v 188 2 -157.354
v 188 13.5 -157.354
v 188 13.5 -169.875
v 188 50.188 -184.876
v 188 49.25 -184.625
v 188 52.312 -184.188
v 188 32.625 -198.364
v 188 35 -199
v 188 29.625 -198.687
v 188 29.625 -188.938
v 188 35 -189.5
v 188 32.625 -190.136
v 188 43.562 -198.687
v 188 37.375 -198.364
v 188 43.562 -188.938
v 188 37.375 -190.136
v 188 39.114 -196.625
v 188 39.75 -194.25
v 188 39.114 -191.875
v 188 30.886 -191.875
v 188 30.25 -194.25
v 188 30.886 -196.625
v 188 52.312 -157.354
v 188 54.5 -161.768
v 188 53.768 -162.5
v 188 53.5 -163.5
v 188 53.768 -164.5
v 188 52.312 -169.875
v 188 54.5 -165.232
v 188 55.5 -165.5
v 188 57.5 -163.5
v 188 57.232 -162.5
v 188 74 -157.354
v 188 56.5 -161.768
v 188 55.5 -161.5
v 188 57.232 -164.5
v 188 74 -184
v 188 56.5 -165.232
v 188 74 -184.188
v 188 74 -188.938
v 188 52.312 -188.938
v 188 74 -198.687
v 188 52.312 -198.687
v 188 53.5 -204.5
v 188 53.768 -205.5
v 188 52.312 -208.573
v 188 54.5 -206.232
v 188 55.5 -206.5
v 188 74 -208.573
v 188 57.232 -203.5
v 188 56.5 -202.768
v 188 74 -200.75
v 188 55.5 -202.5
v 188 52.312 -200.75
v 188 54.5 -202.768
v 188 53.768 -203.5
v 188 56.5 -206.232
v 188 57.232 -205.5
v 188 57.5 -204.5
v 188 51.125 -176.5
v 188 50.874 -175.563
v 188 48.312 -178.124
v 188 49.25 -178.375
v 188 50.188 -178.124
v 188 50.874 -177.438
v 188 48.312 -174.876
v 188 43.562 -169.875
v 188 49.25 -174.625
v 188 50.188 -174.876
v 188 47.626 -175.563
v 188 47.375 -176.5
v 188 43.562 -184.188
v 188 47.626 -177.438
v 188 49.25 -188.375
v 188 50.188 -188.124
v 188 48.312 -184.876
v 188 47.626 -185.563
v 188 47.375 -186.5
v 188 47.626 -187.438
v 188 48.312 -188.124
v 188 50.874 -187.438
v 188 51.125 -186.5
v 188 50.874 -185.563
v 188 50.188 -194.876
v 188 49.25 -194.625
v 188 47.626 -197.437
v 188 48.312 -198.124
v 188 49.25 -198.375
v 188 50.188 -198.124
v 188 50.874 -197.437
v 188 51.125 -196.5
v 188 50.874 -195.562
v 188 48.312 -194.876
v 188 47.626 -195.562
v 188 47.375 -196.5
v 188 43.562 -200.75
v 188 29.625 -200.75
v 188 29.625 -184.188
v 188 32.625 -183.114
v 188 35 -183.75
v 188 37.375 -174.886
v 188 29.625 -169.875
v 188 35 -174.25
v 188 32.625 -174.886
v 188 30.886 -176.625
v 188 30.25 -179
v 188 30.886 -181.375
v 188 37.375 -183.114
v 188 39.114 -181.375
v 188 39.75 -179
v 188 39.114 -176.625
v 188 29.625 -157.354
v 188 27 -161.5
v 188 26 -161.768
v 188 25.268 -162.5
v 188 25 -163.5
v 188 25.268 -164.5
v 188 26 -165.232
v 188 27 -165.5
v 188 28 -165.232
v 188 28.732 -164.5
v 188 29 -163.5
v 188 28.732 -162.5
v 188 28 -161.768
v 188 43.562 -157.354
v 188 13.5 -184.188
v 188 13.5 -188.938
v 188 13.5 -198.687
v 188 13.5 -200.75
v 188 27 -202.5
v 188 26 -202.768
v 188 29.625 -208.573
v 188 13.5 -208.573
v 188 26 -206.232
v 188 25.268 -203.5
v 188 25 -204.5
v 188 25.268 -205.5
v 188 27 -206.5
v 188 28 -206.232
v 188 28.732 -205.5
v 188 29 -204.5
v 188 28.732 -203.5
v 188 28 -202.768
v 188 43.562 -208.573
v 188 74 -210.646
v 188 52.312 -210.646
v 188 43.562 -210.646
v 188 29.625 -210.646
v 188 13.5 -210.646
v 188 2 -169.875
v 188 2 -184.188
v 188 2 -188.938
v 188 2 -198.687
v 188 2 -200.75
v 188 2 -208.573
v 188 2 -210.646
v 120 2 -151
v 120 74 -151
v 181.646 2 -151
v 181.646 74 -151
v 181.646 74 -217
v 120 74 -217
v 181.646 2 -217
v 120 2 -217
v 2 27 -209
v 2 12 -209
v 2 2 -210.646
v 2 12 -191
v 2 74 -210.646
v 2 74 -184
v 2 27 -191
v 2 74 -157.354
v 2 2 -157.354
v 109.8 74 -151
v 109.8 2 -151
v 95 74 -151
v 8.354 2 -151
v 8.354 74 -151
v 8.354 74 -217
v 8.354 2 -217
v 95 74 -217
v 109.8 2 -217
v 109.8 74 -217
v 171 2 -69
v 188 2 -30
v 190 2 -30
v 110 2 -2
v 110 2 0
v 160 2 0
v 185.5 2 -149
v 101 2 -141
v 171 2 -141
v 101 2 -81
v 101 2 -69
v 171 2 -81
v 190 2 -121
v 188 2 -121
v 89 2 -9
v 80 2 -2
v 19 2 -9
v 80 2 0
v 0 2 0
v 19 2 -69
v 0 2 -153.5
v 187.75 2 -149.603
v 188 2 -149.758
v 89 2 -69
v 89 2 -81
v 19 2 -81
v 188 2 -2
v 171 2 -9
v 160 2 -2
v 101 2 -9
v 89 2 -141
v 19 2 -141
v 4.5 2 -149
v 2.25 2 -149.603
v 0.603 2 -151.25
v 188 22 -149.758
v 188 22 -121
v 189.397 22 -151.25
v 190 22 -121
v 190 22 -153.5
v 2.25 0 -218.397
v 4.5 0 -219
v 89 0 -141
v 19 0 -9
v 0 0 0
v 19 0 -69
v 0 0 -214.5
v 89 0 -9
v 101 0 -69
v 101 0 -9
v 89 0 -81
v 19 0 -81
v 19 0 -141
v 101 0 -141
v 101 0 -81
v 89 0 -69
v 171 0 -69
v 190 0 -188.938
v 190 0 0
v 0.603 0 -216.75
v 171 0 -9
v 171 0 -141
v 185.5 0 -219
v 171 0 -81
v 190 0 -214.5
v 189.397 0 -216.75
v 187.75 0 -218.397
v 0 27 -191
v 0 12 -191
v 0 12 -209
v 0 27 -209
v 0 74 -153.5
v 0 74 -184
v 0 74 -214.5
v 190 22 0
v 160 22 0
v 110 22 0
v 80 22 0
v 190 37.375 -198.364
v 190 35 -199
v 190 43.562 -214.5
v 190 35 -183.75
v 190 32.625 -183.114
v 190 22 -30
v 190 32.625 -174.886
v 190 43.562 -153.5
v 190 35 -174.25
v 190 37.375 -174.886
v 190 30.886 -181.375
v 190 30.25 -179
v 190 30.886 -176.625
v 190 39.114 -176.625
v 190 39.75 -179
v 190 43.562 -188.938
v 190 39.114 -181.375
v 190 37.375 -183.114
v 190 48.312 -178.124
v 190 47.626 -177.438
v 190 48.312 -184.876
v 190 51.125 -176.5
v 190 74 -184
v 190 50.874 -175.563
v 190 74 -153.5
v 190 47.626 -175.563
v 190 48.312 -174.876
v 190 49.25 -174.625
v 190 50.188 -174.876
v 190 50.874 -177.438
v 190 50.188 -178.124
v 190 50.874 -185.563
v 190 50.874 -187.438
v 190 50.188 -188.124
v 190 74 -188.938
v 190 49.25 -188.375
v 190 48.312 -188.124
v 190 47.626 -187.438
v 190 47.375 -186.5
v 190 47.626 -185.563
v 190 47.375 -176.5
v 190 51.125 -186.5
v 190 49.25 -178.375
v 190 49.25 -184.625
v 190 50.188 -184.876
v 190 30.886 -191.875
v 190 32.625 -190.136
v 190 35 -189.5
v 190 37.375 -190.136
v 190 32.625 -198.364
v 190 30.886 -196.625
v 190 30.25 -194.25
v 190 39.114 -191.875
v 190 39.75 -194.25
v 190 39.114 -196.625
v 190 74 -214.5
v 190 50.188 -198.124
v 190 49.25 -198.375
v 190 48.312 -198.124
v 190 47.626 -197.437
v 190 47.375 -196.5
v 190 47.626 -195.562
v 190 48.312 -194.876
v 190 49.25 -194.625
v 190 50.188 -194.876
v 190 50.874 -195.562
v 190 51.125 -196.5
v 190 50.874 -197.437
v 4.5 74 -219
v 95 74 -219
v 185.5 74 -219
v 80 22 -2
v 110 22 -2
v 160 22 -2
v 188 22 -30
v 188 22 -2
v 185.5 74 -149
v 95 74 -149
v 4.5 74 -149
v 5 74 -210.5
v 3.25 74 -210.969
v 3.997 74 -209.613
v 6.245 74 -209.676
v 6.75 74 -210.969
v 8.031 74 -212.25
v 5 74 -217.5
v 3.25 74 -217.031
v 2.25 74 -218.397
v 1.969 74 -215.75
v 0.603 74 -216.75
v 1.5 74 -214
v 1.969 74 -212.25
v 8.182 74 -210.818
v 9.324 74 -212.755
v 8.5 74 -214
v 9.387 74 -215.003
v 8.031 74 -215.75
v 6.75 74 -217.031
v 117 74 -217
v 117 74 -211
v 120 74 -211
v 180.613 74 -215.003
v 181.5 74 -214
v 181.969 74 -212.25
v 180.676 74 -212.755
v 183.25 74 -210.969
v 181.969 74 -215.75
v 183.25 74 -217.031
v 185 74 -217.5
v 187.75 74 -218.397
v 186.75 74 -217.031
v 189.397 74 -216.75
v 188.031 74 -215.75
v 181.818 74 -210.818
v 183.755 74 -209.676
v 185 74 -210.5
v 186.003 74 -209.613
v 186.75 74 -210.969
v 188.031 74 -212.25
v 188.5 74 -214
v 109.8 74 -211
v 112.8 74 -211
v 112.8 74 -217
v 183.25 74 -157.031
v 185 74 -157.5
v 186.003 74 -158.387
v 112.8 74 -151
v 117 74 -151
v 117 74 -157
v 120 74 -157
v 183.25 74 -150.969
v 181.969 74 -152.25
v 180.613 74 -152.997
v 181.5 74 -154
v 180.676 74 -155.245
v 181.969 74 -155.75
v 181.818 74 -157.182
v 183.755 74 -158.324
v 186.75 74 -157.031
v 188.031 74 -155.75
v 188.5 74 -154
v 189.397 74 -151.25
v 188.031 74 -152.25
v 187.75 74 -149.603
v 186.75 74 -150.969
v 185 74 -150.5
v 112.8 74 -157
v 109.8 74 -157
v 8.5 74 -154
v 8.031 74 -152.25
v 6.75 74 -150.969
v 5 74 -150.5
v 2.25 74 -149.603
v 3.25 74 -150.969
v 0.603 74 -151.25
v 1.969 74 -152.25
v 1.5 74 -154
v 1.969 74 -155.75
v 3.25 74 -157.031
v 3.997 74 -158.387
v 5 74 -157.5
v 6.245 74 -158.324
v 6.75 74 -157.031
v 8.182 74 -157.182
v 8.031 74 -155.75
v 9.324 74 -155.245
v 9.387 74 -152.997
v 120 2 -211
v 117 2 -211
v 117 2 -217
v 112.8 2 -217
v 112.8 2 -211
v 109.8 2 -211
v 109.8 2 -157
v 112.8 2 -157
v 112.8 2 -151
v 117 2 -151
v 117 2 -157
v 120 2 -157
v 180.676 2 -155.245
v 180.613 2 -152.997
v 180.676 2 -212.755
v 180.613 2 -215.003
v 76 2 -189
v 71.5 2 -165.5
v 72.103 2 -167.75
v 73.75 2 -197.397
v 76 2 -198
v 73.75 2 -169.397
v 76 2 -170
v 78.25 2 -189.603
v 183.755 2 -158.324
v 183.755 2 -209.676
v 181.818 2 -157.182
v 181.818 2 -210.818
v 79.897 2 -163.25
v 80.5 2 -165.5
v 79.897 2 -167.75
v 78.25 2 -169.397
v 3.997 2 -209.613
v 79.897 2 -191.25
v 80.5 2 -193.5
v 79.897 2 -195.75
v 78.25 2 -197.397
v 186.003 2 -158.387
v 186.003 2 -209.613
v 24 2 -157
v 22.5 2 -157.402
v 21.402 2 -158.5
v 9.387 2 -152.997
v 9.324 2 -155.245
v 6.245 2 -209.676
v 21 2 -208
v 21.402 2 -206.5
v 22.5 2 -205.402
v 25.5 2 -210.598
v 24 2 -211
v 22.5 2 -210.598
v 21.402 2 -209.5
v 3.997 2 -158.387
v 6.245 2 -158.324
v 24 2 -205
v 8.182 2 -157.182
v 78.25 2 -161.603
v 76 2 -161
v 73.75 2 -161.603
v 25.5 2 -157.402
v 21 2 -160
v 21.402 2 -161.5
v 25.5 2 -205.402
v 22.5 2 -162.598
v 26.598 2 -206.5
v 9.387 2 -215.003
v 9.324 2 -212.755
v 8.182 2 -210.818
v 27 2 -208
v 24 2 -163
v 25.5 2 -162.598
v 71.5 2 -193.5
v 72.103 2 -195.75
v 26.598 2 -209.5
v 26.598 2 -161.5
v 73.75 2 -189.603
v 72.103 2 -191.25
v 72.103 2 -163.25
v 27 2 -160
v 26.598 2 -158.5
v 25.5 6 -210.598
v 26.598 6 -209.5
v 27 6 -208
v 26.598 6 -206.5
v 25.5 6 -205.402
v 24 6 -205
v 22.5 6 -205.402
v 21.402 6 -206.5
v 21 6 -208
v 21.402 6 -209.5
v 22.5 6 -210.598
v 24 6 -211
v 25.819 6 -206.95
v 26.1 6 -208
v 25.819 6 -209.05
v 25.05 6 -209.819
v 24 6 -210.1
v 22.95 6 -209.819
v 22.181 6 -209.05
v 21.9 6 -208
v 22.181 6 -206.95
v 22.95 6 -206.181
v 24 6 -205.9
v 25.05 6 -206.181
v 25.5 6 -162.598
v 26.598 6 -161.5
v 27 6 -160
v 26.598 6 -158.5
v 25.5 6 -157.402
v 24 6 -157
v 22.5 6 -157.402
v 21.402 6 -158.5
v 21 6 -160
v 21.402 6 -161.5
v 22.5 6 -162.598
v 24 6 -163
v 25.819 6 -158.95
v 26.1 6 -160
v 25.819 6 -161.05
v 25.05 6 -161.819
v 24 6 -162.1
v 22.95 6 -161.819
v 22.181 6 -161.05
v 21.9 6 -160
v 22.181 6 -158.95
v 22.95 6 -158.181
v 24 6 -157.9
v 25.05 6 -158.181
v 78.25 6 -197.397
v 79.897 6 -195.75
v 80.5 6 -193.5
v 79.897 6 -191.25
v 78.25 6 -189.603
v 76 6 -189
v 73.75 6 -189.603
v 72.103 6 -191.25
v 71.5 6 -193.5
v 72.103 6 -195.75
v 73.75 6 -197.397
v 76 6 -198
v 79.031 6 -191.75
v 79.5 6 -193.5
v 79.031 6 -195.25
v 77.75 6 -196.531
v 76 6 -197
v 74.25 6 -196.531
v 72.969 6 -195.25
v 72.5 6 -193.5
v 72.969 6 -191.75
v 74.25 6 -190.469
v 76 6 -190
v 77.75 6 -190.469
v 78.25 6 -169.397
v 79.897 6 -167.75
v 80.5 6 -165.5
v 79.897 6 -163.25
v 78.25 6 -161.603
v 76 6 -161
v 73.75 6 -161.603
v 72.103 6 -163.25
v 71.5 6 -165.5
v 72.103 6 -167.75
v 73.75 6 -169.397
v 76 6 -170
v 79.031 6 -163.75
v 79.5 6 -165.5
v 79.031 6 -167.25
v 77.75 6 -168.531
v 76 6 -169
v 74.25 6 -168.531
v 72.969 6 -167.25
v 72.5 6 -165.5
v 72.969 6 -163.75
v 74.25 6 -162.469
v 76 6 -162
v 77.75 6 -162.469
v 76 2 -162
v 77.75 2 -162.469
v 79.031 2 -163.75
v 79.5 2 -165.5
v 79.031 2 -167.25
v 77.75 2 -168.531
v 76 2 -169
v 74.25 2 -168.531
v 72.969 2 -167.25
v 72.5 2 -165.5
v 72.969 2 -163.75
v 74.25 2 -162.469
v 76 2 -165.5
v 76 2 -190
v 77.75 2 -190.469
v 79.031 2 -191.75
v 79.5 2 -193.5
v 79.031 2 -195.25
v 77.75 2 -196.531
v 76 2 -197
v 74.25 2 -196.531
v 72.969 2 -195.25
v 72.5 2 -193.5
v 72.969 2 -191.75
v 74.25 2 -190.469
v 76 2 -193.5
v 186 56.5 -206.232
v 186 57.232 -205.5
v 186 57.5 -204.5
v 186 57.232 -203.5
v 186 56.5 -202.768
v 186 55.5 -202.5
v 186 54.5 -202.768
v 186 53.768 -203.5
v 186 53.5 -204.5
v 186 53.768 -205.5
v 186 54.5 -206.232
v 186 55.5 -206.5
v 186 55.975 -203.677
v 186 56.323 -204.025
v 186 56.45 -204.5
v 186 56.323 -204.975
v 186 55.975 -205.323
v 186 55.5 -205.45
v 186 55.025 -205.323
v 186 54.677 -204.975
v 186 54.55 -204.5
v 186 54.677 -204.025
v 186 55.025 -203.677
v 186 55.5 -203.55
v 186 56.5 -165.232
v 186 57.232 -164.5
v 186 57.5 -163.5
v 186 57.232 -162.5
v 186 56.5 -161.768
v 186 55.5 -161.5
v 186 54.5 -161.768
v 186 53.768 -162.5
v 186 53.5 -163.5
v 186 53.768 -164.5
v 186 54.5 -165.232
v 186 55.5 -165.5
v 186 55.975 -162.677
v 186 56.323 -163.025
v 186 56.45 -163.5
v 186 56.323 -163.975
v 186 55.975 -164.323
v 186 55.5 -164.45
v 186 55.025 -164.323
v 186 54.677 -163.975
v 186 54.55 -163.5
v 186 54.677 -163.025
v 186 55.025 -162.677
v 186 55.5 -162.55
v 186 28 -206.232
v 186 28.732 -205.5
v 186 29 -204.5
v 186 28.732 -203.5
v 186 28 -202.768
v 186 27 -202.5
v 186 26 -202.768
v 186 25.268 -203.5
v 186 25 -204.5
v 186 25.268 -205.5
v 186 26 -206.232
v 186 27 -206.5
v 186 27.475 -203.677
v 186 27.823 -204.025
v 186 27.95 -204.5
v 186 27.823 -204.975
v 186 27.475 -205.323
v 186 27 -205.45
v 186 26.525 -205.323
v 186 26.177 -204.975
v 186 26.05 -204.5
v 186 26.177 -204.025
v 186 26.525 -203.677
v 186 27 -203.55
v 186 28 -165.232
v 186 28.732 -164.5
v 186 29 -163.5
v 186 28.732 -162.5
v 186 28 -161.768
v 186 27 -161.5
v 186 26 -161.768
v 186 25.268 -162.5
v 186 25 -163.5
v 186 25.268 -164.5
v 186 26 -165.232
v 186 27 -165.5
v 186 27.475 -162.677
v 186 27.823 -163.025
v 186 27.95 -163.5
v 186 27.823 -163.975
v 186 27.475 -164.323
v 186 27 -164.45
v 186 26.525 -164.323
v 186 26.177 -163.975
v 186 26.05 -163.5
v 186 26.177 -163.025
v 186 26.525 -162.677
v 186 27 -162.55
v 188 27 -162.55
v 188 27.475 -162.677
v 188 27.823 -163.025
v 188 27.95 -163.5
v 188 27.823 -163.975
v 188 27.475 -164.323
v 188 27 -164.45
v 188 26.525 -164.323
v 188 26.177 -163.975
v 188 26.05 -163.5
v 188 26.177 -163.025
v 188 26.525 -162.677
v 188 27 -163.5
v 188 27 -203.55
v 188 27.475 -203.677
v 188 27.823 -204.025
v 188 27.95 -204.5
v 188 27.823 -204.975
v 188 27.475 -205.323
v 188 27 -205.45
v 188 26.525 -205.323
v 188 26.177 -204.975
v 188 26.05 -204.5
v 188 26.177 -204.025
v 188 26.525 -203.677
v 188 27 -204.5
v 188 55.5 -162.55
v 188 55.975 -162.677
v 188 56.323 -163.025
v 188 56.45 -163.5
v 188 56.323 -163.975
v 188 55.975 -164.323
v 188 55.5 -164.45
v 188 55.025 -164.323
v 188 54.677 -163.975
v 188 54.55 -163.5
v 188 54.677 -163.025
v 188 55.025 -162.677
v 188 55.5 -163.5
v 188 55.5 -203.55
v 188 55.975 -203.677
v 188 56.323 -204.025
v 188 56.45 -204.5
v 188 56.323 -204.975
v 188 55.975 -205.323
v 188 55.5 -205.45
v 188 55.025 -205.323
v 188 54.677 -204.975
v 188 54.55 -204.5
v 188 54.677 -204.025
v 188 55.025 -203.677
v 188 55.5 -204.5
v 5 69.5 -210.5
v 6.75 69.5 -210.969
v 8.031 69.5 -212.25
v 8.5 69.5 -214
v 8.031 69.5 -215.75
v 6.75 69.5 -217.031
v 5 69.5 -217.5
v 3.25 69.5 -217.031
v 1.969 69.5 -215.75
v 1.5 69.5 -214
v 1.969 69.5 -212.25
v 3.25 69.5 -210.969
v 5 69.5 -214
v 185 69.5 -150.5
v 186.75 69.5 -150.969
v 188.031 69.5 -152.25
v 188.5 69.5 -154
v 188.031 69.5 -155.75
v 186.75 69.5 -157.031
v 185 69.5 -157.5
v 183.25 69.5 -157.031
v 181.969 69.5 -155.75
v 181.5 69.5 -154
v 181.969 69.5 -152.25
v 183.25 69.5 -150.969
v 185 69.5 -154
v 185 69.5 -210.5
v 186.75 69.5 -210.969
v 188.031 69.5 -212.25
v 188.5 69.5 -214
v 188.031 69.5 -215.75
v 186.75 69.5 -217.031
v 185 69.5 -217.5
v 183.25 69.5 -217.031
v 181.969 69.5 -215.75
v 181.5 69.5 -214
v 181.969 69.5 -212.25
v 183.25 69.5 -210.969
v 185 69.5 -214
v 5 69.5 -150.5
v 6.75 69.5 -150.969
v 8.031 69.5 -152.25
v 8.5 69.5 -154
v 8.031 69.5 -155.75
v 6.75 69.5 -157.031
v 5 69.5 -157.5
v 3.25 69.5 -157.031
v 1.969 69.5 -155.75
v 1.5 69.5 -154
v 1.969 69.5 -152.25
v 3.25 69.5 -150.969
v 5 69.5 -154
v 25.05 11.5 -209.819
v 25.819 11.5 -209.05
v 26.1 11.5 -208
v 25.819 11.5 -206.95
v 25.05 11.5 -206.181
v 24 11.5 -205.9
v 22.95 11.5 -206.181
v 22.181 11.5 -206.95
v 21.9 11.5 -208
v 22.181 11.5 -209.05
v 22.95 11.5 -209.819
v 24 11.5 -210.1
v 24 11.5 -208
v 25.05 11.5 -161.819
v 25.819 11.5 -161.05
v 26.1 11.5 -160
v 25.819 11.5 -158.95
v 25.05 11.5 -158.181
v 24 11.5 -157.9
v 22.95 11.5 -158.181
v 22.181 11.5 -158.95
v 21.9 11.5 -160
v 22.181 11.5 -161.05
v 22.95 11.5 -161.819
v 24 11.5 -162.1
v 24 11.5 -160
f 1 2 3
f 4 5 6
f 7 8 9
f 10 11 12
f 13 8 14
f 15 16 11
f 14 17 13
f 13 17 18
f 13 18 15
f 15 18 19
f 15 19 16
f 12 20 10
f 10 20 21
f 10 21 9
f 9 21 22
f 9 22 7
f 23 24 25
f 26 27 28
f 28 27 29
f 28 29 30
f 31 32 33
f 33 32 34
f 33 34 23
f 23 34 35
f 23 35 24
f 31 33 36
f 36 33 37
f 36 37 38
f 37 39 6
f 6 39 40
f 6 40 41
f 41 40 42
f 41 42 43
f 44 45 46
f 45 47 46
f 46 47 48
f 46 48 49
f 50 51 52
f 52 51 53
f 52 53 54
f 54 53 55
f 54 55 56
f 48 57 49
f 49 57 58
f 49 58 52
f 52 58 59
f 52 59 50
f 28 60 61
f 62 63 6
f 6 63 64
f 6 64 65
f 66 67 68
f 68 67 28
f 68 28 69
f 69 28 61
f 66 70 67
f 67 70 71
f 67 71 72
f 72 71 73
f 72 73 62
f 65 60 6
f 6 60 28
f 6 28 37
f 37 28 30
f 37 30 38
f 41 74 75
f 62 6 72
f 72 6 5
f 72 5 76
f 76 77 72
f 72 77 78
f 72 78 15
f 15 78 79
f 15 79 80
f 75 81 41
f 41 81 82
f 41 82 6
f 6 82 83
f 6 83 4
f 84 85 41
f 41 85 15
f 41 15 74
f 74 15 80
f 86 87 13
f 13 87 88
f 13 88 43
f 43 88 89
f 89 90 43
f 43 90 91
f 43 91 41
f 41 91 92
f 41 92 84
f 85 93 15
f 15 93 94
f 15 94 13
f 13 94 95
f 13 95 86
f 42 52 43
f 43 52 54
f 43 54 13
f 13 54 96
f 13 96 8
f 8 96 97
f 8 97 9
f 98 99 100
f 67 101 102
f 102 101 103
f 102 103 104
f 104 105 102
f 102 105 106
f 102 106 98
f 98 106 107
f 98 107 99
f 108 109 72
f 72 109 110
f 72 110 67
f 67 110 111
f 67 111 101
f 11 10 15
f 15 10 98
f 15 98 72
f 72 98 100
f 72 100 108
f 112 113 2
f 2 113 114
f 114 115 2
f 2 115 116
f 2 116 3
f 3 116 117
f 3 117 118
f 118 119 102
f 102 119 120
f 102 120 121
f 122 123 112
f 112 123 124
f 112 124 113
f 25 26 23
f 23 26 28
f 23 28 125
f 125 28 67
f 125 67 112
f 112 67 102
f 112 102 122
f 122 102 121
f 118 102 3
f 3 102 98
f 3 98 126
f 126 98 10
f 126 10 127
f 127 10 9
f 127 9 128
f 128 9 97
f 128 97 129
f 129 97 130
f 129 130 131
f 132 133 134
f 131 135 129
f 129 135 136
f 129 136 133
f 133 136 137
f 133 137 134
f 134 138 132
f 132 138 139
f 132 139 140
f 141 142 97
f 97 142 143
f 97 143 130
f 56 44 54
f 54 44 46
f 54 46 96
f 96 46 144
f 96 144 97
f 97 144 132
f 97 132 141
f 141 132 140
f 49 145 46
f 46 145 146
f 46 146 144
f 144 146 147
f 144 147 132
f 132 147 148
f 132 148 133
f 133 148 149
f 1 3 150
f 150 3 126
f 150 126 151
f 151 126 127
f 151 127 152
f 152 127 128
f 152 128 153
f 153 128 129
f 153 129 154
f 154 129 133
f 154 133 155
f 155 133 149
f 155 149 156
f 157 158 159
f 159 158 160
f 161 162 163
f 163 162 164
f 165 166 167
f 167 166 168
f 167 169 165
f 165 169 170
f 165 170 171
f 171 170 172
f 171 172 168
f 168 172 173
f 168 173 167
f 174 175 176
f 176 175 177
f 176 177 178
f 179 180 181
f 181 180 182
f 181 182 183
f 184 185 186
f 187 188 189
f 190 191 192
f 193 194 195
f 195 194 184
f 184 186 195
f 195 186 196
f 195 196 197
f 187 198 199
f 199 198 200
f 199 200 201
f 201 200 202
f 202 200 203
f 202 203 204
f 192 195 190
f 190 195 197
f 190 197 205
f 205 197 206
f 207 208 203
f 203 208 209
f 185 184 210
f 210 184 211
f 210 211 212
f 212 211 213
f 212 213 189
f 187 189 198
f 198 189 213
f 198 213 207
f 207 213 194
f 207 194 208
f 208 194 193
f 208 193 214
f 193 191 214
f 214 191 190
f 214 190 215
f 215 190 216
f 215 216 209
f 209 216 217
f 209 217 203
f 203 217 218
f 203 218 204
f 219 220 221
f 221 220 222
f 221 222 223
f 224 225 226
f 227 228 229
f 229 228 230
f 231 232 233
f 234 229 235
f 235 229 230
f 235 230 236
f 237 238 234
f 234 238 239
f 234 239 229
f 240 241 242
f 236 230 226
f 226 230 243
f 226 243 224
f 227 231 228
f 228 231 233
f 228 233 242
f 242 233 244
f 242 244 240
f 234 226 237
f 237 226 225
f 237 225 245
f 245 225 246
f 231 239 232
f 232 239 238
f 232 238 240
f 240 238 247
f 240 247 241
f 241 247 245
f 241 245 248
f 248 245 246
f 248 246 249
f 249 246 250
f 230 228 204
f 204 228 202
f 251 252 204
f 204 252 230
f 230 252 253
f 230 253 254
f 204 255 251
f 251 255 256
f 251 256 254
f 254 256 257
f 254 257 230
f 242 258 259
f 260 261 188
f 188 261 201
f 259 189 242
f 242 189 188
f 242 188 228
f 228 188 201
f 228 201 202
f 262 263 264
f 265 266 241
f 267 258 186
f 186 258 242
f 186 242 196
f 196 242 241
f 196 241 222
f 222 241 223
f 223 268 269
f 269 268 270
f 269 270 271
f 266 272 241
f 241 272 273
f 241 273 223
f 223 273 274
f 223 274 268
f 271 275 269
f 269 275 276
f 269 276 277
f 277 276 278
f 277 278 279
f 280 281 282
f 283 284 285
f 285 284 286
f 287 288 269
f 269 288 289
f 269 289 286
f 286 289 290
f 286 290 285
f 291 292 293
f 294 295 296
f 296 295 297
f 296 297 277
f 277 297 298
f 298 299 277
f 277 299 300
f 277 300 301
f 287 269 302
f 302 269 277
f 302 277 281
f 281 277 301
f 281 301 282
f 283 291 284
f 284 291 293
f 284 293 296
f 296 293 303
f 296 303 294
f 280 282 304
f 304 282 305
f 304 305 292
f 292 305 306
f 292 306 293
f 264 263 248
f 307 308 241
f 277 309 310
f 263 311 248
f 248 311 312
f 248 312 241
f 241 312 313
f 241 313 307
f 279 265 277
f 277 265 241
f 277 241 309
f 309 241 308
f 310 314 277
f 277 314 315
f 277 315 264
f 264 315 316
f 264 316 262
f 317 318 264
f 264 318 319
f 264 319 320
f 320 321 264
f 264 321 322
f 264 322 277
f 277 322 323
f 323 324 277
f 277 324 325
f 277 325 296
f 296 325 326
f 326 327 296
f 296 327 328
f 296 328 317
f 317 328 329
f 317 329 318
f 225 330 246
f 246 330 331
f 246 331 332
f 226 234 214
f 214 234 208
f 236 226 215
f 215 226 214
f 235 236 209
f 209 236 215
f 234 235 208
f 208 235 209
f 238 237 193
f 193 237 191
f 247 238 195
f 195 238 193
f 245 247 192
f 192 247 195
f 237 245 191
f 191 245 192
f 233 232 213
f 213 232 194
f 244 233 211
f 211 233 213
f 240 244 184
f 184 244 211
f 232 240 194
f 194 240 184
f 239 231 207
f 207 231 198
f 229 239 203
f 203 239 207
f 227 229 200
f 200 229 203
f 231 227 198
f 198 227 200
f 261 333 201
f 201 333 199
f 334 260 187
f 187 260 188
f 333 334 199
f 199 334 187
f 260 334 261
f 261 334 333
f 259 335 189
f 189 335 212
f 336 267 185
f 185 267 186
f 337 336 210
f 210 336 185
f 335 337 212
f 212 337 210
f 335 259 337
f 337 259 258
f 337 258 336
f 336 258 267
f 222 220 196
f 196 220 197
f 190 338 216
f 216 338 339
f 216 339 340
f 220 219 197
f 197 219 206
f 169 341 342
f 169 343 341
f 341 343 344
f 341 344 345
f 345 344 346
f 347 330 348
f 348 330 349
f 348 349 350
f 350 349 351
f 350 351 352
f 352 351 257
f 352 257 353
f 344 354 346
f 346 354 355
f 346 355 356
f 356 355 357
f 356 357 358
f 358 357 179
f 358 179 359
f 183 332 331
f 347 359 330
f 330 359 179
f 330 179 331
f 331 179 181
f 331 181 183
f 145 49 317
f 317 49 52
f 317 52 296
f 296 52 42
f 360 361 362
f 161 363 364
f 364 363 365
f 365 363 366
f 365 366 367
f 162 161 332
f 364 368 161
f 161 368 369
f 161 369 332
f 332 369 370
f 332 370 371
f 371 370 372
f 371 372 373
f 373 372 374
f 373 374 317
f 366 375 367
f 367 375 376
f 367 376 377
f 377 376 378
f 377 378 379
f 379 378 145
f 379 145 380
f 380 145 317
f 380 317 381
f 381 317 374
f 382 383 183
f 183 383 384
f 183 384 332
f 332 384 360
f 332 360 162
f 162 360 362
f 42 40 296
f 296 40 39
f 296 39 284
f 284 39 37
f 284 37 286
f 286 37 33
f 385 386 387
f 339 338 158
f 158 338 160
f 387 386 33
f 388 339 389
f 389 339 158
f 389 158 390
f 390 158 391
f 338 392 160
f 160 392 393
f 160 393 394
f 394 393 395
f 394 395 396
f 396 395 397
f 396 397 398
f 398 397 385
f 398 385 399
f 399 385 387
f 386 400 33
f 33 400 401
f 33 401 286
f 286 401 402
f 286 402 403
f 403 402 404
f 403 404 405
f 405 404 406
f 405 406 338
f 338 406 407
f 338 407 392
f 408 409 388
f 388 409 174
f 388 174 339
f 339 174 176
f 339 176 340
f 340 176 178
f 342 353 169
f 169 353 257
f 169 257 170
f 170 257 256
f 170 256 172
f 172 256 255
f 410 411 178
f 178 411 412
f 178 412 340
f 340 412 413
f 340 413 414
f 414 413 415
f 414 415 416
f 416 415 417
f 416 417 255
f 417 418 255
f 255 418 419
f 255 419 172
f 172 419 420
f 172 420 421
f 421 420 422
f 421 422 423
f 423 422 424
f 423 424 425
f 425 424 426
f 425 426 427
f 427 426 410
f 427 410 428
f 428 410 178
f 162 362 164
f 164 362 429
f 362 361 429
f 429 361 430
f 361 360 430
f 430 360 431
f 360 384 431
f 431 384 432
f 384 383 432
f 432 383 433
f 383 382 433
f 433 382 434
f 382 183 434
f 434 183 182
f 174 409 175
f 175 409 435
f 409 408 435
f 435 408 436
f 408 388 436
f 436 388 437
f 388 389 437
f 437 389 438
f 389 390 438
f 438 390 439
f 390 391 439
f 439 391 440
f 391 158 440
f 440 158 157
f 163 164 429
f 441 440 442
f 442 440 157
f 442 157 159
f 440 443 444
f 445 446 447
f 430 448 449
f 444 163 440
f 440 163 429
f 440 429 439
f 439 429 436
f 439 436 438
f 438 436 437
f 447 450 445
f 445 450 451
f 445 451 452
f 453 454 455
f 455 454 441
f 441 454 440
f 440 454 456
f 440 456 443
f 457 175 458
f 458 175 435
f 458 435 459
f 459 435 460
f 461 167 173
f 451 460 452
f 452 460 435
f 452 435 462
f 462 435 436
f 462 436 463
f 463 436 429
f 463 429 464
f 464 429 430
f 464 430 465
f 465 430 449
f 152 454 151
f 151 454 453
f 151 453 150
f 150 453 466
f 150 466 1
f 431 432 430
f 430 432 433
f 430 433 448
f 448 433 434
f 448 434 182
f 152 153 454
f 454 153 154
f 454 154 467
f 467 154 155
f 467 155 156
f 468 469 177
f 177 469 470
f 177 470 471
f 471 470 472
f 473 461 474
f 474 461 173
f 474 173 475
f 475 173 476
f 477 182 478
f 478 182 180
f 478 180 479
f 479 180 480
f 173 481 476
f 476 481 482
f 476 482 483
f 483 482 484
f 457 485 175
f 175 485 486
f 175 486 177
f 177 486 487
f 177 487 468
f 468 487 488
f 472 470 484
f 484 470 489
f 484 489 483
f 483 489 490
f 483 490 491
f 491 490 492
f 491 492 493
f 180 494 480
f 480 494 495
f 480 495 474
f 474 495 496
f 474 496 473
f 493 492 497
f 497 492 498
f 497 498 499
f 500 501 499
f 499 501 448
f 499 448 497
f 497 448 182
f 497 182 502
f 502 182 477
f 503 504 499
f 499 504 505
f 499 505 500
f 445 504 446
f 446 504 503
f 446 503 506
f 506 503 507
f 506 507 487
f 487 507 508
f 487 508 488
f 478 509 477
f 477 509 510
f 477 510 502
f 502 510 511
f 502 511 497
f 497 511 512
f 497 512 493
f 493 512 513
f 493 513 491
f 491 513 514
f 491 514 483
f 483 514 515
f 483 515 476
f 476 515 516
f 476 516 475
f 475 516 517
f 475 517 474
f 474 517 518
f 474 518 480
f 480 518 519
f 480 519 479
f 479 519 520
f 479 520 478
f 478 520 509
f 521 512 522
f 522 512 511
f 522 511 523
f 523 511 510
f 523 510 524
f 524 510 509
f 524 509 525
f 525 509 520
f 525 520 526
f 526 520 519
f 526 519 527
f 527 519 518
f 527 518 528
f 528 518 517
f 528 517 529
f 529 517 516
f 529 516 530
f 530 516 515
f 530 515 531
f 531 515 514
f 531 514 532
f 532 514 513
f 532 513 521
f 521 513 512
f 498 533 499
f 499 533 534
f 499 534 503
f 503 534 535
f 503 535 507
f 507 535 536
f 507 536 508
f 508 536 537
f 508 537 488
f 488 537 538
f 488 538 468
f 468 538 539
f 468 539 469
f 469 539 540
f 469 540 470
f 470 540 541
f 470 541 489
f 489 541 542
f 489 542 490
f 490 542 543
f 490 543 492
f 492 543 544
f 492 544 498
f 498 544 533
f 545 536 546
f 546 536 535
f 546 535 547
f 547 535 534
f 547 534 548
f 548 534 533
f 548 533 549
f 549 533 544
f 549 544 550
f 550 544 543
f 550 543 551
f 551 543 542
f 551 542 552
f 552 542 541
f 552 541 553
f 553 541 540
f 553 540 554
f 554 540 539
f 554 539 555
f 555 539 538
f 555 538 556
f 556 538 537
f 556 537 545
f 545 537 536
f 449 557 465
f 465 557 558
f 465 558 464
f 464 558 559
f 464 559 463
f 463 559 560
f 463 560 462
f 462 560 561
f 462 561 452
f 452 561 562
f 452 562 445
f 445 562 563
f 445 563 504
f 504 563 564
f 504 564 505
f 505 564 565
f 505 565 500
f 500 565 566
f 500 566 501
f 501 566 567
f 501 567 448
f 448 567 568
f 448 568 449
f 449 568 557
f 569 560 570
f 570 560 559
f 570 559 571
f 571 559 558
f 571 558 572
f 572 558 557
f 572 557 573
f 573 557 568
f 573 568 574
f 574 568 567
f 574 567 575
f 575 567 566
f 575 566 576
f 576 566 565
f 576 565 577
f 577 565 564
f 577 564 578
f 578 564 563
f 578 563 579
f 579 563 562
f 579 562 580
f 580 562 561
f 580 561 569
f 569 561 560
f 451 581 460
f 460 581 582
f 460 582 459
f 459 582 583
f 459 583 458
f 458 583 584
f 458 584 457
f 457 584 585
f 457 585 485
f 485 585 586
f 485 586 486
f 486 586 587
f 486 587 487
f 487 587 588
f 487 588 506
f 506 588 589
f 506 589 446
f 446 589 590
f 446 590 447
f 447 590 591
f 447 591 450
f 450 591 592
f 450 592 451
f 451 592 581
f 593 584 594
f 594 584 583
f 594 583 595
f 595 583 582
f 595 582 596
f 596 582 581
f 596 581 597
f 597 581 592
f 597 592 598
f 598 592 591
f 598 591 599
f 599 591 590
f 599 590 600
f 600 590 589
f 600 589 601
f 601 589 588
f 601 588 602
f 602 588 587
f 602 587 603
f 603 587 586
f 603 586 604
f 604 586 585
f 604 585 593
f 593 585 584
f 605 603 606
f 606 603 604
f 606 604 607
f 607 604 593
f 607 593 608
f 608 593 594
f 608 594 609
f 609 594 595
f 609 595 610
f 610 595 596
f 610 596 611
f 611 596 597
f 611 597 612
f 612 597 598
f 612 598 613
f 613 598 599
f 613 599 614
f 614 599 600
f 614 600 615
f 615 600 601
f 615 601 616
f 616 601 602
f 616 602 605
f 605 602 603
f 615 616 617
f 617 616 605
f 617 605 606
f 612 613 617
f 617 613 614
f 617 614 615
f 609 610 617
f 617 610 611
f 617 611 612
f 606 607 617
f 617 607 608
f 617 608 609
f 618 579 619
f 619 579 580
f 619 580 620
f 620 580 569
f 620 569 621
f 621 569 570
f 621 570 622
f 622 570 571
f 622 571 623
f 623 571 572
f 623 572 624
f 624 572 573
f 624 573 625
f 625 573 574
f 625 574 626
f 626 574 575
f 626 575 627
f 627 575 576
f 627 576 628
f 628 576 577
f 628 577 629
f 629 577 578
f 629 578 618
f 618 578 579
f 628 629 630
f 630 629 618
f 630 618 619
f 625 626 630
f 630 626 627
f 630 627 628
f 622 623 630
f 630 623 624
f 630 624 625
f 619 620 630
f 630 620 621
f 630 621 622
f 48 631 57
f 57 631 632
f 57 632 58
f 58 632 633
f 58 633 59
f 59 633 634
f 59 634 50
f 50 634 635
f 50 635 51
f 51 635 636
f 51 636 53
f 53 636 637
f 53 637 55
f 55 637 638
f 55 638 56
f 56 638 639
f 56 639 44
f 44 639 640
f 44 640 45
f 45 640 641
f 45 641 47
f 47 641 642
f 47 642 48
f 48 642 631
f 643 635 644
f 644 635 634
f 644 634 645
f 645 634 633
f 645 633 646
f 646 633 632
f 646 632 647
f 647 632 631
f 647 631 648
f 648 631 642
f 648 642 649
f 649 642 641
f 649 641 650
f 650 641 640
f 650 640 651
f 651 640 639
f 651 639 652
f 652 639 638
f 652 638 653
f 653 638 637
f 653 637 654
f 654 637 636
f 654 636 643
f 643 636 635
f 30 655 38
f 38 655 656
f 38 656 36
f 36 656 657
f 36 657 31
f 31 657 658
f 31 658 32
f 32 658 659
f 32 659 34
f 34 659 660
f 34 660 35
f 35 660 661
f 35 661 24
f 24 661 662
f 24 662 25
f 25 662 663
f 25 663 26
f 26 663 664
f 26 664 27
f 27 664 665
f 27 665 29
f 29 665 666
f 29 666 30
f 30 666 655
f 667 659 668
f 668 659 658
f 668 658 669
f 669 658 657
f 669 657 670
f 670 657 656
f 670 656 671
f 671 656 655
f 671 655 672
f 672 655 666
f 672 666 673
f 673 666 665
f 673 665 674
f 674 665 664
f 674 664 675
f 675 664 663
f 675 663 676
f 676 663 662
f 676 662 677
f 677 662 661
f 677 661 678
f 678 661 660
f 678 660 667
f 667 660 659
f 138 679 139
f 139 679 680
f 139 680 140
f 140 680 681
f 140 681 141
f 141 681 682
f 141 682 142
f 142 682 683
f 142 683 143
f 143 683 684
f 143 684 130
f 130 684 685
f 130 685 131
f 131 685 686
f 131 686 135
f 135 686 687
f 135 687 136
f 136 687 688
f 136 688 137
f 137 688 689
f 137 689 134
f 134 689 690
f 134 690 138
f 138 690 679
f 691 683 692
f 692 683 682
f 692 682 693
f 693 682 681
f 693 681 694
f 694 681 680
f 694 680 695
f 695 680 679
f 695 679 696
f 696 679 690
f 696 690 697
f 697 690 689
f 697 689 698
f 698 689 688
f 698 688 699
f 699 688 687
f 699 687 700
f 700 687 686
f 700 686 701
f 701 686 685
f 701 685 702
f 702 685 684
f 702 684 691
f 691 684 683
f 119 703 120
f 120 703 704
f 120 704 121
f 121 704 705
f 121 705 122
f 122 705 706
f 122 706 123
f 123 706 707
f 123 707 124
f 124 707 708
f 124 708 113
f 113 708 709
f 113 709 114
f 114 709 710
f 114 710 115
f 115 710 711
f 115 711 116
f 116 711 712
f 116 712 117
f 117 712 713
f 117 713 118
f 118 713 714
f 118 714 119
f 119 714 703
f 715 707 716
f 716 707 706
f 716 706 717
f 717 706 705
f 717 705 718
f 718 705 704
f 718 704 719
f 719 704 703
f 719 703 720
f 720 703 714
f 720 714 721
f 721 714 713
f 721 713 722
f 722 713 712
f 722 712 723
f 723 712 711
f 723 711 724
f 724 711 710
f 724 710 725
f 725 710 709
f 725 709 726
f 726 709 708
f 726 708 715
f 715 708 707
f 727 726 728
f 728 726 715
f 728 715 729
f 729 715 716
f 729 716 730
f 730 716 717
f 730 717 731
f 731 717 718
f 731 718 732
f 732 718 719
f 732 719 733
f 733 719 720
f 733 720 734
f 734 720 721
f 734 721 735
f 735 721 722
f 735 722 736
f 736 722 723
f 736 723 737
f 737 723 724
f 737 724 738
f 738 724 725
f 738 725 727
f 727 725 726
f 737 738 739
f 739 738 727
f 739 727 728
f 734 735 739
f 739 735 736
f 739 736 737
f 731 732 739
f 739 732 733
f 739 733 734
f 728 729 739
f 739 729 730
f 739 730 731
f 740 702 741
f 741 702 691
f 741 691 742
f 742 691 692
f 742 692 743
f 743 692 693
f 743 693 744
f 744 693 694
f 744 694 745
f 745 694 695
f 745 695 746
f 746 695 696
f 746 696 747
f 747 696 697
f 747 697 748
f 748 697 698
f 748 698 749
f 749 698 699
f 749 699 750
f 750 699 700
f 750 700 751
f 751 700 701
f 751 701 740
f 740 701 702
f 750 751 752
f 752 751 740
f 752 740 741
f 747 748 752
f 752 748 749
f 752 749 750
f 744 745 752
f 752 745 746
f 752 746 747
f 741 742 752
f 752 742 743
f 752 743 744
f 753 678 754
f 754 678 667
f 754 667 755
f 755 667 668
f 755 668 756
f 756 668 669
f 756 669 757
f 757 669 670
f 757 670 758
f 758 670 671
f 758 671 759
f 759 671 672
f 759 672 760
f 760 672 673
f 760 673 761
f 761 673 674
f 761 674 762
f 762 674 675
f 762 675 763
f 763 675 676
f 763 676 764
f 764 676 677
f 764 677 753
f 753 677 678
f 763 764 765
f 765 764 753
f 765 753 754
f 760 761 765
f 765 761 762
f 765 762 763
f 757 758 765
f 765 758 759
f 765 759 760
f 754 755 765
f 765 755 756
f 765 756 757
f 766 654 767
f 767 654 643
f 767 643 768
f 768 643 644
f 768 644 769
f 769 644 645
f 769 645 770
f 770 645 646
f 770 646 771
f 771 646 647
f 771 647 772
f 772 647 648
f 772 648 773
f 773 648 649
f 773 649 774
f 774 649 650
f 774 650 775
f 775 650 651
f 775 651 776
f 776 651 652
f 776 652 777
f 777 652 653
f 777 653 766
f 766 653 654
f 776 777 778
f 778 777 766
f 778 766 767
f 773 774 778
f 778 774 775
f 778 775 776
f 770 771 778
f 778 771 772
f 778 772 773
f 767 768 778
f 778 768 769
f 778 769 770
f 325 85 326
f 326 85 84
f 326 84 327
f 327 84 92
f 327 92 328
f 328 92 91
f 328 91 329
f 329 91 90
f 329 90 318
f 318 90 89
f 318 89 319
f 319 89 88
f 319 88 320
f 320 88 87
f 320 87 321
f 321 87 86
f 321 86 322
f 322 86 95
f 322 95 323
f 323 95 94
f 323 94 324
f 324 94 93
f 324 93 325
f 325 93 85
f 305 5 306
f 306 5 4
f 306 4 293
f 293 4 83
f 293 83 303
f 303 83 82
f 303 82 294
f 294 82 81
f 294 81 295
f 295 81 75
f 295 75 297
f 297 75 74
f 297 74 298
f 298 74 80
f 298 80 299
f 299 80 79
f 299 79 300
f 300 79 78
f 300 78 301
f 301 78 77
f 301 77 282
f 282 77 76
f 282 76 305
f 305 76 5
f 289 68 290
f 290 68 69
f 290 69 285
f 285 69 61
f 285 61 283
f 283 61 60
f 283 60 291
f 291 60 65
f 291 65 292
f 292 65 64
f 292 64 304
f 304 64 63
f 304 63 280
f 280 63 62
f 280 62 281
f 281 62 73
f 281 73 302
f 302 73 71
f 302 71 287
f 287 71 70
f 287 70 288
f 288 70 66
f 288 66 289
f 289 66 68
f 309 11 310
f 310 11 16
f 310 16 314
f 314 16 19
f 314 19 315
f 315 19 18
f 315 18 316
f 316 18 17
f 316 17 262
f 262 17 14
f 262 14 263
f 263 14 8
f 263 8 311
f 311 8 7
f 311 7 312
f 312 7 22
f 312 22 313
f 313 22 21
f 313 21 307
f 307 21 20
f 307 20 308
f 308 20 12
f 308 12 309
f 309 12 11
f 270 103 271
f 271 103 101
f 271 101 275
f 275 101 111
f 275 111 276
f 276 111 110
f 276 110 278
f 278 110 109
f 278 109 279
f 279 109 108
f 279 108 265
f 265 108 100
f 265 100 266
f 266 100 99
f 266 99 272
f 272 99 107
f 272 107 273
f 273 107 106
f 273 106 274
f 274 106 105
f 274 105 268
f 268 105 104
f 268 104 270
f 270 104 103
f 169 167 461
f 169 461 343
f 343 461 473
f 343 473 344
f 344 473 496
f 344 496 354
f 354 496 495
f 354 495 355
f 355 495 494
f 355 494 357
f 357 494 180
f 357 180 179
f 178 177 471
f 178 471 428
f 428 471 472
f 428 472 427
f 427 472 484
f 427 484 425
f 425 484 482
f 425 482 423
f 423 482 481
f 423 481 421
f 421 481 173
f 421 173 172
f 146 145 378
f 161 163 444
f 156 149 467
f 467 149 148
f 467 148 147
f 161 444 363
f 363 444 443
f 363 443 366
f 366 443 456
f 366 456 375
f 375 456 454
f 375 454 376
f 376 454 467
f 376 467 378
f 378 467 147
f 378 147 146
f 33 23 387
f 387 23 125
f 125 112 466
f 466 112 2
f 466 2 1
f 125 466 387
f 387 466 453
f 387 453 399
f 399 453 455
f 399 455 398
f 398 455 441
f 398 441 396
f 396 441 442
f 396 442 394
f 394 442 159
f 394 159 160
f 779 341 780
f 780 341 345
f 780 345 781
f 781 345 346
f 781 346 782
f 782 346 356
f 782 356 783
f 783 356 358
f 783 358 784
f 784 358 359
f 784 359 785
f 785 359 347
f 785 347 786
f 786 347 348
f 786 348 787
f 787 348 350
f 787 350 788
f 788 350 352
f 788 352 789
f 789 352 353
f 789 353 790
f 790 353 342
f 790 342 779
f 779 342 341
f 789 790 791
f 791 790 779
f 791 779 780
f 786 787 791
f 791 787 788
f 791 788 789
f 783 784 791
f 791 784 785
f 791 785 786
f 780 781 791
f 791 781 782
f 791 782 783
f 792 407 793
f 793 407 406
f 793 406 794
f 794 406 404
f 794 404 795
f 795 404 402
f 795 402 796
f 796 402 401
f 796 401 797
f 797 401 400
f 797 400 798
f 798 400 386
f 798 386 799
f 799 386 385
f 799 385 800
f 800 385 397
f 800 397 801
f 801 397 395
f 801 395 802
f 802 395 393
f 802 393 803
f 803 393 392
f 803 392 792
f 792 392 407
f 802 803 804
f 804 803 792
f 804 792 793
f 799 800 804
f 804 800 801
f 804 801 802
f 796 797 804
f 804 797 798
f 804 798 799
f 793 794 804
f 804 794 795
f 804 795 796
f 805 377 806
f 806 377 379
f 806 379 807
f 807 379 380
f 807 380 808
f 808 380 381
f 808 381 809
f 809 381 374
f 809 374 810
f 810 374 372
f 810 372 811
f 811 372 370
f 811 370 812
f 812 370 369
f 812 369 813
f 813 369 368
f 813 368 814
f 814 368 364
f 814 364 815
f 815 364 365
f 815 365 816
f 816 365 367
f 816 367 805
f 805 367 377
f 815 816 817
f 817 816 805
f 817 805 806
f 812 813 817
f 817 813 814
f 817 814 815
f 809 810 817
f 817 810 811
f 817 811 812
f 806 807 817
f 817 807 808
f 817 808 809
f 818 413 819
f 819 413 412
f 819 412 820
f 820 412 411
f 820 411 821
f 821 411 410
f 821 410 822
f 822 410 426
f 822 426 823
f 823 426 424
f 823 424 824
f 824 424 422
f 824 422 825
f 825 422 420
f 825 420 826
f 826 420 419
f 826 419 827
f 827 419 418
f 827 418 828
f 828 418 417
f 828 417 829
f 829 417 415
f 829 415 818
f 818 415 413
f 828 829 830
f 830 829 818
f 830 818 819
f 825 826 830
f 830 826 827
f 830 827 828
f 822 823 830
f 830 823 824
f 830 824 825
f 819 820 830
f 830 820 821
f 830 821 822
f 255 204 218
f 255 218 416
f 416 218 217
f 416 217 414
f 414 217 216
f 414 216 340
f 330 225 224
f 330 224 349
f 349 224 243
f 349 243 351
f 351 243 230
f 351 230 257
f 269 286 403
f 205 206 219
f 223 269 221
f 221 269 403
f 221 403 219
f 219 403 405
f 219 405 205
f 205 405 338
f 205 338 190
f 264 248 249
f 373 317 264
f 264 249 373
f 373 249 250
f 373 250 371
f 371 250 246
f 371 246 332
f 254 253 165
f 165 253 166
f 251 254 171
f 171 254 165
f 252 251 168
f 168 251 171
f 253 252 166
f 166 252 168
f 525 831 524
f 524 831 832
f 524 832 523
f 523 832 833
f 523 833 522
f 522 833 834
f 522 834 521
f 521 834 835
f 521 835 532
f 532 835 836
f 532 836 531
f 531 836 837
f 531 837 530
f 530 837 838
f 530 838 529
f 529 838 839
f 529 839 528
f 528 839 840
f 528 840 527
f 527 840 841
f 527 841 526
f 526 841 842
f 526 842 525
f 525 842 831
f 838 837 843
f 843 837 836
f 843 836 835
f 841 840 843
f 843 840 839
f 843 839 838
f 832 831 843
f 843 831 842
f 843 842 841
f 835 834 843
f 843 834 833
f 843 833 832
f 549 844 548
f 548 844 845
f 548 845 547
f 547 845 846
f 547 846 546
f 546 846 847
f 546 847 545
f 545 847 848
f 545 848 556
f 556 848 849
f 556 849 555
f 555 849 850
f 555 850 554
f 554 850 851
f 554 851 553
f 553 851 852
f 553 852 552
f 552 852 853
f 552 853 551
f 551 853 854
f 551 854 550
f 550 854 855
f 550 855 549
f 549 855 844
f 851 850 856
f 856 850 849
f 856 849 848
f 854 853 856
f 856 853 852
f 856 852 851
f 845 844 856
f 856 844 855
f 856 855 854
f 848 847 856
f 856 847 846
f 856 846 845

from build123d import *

# Parameters (mm, degrees)
SKETCH1_W           = 190
SKETCH1_H           = 219
BOSS_EXTRUDE1_DEPTH = 2
SKETCH4_W           = 70
SKETCH4_H           = 60
CUT_EXTRUDE1_DEPTH  = 4
SKETCH2_W           = 30
SKETCH2_H           = 2
BOSS_EXTRUDE2_DEPTH = 20
SKETCH3_W           = 190
SKETCH3_H           = 70
BOSS_EXTRUDE3_DEPTH = 72
SKETCH7_R           = 3
SKETCH7_R_2         = 4.5
BOSS_EXTRUDE4_DEPTH = 4
SKETCH8_R           = 3.5
CUT_EXTRUDE3_DEPTH  = 4
SKETCH9_R           = 2
BOSS_EXTRUDE5_DEPTH = 2
SKETCH10_R          = 0.95
CUT_EXTRUDE4_DEPTH  = 2
SKETCH11_R          = 1.875
SKETCH11_R_2        = 4.75
CUT_EXTRUDE5_DEPTH  = 4
SKETCH12_R          = 4.5
BOSS_EXTRUDE6_DEPTH = 72
SKETCH13_R          = 3.5
CUT_EXTRUDE6_DEPTH  = 4.5
FILLET1_START       = 2
FILLET1_DEPTH       = 73
FILLET1_START_2     = 22
FILLET1_2_DEPTH     = 53
FILLET1_START_3     = -1
FILLET1_3_DEPTH     = 23
SKETCH14_W          = 18
SKETCH14_H          = 15
CUT_EXTRUDE7_DEPTH  = 5
SKETCH15_R          = 2.1
BOSS_EXTRUDE7_DEPTH = 5.5


with BuildPart() as part:
    # Sketch1 → Boss-Extrude1 (new body)
    with BuildSketch(Plane(origin=(0, 0, 0), x_dir=(1, 0, 0), z_dir=(0, 1, 0))):
        with Locations((95, 109.5)):
            Rectangle(SKETCH1_W, SKETCH1_H)
    extrude(amount=BOSS_EXTRUDE1_DEPTH)

    # Sketch4 → Cut-Extrude1 (cut)
    with BuildSketch(Plane(origin=(0, 0, 0), x_dir=(1, 0, 0), z_dir=(0, 1, 0))):
        with Locations((54, 111)):
            Rectangle(SKETCH4_W, SKETCH4_H)
        with Locations((136, 111)):
            Rectangle(SKETCH4_W, SKETCH4_H)
        with Locations((136, 39)):
            Rectangle(SKETCH4_W, SKETCH4_H)
        with Locations((54, 39)):
            Rectangle(SKETCH4_W, SKETCH4_H)
    extrude(amount=CUT_EXTRUDE1_DEPTH, mode=Mode.SUBTRACT)

    # Sketch2 → Boss-Extrude2 (add)
    with BuildSketch(Plane(origin=(0, 2, 0), x_dir=(1, 0, 0), z_dir=(0, 1, 0))):
        with Locations((95, 1)):
            Rectangle(SKETCH2_W, SKETCH2_H)
        Polygon((160, 0), (190, 0), (190, 30), (188, 30), (188, 2), (160, 2), align=None)
        Polygon((190, 121), (190, 151), (156, 151), (156, 149), (188, 149), (188, 121), align=None)
    extrude(amount=BOSS_EXTRUDE2_DEPTH)

    # Sketch3 → Boss-Extrude3 (add)
    with BuildSketch(Plane(origin=(0, 2, 0), x_dir=(1, 0, 0), z_dir=(0, 1, 0))):
        with Locations((95, 184)):
            Rectangle(SKETCH3_W, SKETCH3_H)
        Polygon((188, 217), (120, 217), (120, 211), (117, 211), (117, 217), (112.8, 217), (112.8, 211), (109.8, 211), (109.8, 217), (2, 217), (2, 151), (109.8, 151), (109.8, 157), (112.8, 157), (112.8, 151), (117, 151), (117, 157), (120, 157), (120, 151), (188, 151), align=None, mode=Mode.SUBTRACT)
    extrude(amount=BOSS_EXTRUDE3_DEPTH)

    # Sketch7 → Boss-Extrude4 (add)
    with BuildSketch(Plane(origin=(0, 2, 0), x_dir=(1, 0, 0), z_dir=(0, 1, 0))):
        with Locations(Location((24, 208, 0), (0, 0, 90))):
            Circle(SKETCH7_R)
        with Locations(Location((24, 160, 0), (0, 0, 90))):
            Circle(SKETCH7_R)
        with Locations(Location((76, 193.5, 0), (0, 0, 90))):
            Circle(SKETCH7_R_2)
        with Locations(Location((76, 165.5, 0), (0, 0, 90))):
            Circle(SKETCH7_R_2)
    extrude(amount=BOSS_EXTRUDE4_DEPTH)

    # Sketch8 → Cut-Extrude3 (cut)
    with BuildSketch(Plane(origin=(0, 6, 0), x_dir=(1, 0, 0), z_dir=(0, 1, 0))):
        with Locations(Location((76, 193.5, 0), (0, 0, 270))):
            Circle(SKETCH8_R)
        with Locations(Location((76, 165.5, 0), (0, 0, 270))):
            Circle(SKETCH8_R)
    extrude(amount=-CUT_EXTRUDE3_DEPTH, mode=Mode.SUBTRACT)

    # Sketch9 → Boss-Extrude5 (add)
    with BuildSketch(Plane.ZY.offset(-188)):
        with Locations((-204.5, 55.5)):
            Circle(SKETCH9_R)
        with Locations((-163.5, 55.5)):
            Circle(SKETCH9_R)
        with Locations((-204.5, 27)):
            Circle(SKETCH9_R)
        with Locations((-163.5, 27)):
            Circle(SKETCH9_R)
    extrude(amount=BOSS_EXTRUDE5_DEPTH)

    # Sketch10 → Cut-Extrude4 (cut)
    with BuildSketch(Plane.ZY.offset(-186)):
        with Locations((-204.5, 55.5)):
            Circle(SKETCH10_R)
        with Locations((-163.5, 55.5)):
            Circle(SKETCH10_R)
        with Locations((-163.5, 27)):
            Circle(SKETCH10_R)
        with Locations((-204.5, 27)):
            Circle(SKETCH10_R)
    extrude(amount=-CUT_EXTRUDE4_DEPTH, mode=Mode.SUBTRACT)

    # Sketch11 → Cut-Extrude5 (cut)
    with BuildSketch(Plane.ZY.offset(-188)):
        with Locations((-196.5, 49.25)):
            Circle(SKETCH11_R)
        with Locations((-186.5, 49.25)):
            Circle(SKETCH11_R)
        with Locations((-176.5, 49.25)):
            Circle(SKETCH11_R)
        with Locations((-194.25, 35)):
            Circle(SKETCH11_R_2)
        with Locations((-179, 35)):
            Circle(SKETCH11_R_2)
    extrude(amount=-CUT_EXTRUDE5_DEPTH, mode=Mode.SUBTRACT)

    # Sketch12 → Boss-Extrude6 (add)
    with BuildSketch(Plane(origin=(0, 2, 0), x_dir=(1, 0, 0), z_dir=(0, 1, 0))):
        with Locations((5, 214)):
            Circle(SKETCH12_R)
        with Locations((5, 154)):
            Circle(SKETCH12_R)
        with Locations((185, 214)):
            Circle(SKETCH12_R)
        with Locations((185, 154)):
            Circle(SKETCH12_R)
    extrude(amount=BOSS_EXTRUDE6_DEPTH)

    # Sketch13 → Cut-Extrude6 (cut)
    with BuildSketch(Plane(origin=(0, 74, 0), x_dir=(1, 0, 0), z_dir=(0, 1, 0))):
        with Locations(Location((5, 214, 0), (0, 0, 270))):
            Circle(SKETCH13_R)
        with Locations(Location((5, 154, 0), (0, 0, 270))):
            Circle(SKETCH13_R)
        with Locations(Location((185, 214, 0), (0, 0, 270))):
            Circle(SKETCH13_R)
        with Locations(Location((185, 154, 0), (0, 0, 270))):
            Circle(SKETCH13_R)
    extrude(amount=-CUT_EXTRUDE6_DEPTH, mode=Mode.SUBTRACT)

    # Fillet1: read off the stored shape, not the designer's step
    # Fillet1 outline → Fillet1 (cut)
    with BuildSketch(Plane(origin=(0, 0, 0), x_dir=(1, 0, 0), z_dir=(0, 1, 0)).offset(FILLET1_START)):
        with BuildLine():
            Line((0, 149), (4.5, 149))
            ThreePointArc((4.5, 149), (1.318019485, 150.318019485), (0, 153.5))
            Line((0, 153.5), (0, 149))
        make_face()
        with BuildLine():
            ThreePointArc((188, 149.758342614), (186.80624304, 149.19375696), (185.5, 149))
            Line((185.5, 149), (188, 149))
            Line((188, 149), (188, 149.758342614))
        make_face()
        with BuildLine():
            Line((0, 219), (0, 214.5))
            ThreePointArc((0, 214.5), (1.318019485, 217.681980515), (4.5, 219))
            Line((4.5, 219), (0, 219))
        make_face()
        with BuildLine():
            Line((190, 219), (185.5, 219))
            ThreePointArc((185.5, 219), (188.681980515, 217.681980515), (190, 214.5))
            Line((190, 214.5), (190, 219))
        make_face()
    extrude(amount=FILLET1_DEPTH, mode=Mode.SUBTRACT)

    # Fillet1 2 outline → Fillet1 2 (cut)
    with BuildSketch(Plane(origin=(0, 0, 0), x_dir=(1, 0, 0), z_dir=(0, 1, 0)).offset(FILLET1_START_2)):
        with BuildLine():
            ThreePointArc((190, 153.5), (189.468626966, 151.378679657), (188, 149.758342614))
            Line((188, 149.758342614), (188, 149))
            Line((188, 149), (190, 149))
            Line((190, 149), (190, 153.5))
        make_face()
    extrude(amount=FILLET1_2_DEPTH, mode=Mode.SUBTRACT)

    # Fillet1 3 outline → Fillet1 3 (cut)
    with BuildSketch(Plane(origin=(0, 0, 0), x_dir=(1, 0, 0), z_dir=(0, 1, 0)).offset(FILLET1_START_3)):
        with BuildLine():
            Line((0, 219), (0, 214.5))
            ThreePointArc((0, 214.5), (1.318019485, 217.681980515), (4.5, 219))
            Line((4.5, 219), (0, 219))
        make_face()
        with BuildLine():
            Line((190, 219), (185.5, 219))
            ThreePointArc((185.5, 219), (188.681980515, 217.681980515), (190, 214.5))
            Line((190, 214.5), (190, 219))
        make_face()
    extrude(amount=FILLET1_3_DEPTH, mode=Mode.SUBTRACT)

    # Sketch14 → Cut-Extrude7 (cut)
    with BuildSketch(Plane.ZY):
        with Locations((-200, 19.5)):
            Rectangle(SKETCH14_W, SKETCH14_H)
    extrude(amount=-CUT_EXTRUDE7_DEPTH, mode=Mode.SUBTRACT)

    # Sketch15 → Boss-Extrude7 (add)
    with BuildSketch(Plane(origin=(0, 6, 0), x_dir=(1, 0, 0), z_dir=(0, 1, 0))):
        with Locations(Location((24, 208, 0), (0, 0, 270))):
            Circle(SKETCH15_R)
        with Locations(Location((24, 160, 0), (0, 0, 270))):
            Circle(SKETCH15_R)
    extrude(amount=BOSS_EXTRUDE7_DEPTH)


solid = part.part
